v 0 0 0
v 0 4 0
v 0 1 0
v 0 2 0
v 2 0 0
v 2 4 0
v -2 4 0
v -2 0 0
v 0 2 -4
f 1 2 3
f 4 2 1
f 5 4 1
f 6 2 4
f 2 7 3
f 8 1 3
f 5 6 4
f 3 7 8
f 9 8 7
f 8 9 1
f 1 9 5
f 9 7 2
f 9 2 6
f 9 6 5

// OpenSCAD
polyhedron([
[0,1,0],  //0
[0,4,0],  //1
[0,0,0],  //2
[0,2,0],  //3
[2,0,0],  //4
[2,4,0],  //5
[-2,4,0], //6
[-2,0,0], //7
[0,2,-4] //8
],[
[0,1,2],
[2,1,3],
[2,3,4],
[3,1,5],
[0,6,1],
[0,2,7],
[3,5,4],
[7,6,0],
[6,7,8],
[2,8,7],
[4,8,2],
[1,6,8],
[5,1,8],
[4,5,8]
]);
